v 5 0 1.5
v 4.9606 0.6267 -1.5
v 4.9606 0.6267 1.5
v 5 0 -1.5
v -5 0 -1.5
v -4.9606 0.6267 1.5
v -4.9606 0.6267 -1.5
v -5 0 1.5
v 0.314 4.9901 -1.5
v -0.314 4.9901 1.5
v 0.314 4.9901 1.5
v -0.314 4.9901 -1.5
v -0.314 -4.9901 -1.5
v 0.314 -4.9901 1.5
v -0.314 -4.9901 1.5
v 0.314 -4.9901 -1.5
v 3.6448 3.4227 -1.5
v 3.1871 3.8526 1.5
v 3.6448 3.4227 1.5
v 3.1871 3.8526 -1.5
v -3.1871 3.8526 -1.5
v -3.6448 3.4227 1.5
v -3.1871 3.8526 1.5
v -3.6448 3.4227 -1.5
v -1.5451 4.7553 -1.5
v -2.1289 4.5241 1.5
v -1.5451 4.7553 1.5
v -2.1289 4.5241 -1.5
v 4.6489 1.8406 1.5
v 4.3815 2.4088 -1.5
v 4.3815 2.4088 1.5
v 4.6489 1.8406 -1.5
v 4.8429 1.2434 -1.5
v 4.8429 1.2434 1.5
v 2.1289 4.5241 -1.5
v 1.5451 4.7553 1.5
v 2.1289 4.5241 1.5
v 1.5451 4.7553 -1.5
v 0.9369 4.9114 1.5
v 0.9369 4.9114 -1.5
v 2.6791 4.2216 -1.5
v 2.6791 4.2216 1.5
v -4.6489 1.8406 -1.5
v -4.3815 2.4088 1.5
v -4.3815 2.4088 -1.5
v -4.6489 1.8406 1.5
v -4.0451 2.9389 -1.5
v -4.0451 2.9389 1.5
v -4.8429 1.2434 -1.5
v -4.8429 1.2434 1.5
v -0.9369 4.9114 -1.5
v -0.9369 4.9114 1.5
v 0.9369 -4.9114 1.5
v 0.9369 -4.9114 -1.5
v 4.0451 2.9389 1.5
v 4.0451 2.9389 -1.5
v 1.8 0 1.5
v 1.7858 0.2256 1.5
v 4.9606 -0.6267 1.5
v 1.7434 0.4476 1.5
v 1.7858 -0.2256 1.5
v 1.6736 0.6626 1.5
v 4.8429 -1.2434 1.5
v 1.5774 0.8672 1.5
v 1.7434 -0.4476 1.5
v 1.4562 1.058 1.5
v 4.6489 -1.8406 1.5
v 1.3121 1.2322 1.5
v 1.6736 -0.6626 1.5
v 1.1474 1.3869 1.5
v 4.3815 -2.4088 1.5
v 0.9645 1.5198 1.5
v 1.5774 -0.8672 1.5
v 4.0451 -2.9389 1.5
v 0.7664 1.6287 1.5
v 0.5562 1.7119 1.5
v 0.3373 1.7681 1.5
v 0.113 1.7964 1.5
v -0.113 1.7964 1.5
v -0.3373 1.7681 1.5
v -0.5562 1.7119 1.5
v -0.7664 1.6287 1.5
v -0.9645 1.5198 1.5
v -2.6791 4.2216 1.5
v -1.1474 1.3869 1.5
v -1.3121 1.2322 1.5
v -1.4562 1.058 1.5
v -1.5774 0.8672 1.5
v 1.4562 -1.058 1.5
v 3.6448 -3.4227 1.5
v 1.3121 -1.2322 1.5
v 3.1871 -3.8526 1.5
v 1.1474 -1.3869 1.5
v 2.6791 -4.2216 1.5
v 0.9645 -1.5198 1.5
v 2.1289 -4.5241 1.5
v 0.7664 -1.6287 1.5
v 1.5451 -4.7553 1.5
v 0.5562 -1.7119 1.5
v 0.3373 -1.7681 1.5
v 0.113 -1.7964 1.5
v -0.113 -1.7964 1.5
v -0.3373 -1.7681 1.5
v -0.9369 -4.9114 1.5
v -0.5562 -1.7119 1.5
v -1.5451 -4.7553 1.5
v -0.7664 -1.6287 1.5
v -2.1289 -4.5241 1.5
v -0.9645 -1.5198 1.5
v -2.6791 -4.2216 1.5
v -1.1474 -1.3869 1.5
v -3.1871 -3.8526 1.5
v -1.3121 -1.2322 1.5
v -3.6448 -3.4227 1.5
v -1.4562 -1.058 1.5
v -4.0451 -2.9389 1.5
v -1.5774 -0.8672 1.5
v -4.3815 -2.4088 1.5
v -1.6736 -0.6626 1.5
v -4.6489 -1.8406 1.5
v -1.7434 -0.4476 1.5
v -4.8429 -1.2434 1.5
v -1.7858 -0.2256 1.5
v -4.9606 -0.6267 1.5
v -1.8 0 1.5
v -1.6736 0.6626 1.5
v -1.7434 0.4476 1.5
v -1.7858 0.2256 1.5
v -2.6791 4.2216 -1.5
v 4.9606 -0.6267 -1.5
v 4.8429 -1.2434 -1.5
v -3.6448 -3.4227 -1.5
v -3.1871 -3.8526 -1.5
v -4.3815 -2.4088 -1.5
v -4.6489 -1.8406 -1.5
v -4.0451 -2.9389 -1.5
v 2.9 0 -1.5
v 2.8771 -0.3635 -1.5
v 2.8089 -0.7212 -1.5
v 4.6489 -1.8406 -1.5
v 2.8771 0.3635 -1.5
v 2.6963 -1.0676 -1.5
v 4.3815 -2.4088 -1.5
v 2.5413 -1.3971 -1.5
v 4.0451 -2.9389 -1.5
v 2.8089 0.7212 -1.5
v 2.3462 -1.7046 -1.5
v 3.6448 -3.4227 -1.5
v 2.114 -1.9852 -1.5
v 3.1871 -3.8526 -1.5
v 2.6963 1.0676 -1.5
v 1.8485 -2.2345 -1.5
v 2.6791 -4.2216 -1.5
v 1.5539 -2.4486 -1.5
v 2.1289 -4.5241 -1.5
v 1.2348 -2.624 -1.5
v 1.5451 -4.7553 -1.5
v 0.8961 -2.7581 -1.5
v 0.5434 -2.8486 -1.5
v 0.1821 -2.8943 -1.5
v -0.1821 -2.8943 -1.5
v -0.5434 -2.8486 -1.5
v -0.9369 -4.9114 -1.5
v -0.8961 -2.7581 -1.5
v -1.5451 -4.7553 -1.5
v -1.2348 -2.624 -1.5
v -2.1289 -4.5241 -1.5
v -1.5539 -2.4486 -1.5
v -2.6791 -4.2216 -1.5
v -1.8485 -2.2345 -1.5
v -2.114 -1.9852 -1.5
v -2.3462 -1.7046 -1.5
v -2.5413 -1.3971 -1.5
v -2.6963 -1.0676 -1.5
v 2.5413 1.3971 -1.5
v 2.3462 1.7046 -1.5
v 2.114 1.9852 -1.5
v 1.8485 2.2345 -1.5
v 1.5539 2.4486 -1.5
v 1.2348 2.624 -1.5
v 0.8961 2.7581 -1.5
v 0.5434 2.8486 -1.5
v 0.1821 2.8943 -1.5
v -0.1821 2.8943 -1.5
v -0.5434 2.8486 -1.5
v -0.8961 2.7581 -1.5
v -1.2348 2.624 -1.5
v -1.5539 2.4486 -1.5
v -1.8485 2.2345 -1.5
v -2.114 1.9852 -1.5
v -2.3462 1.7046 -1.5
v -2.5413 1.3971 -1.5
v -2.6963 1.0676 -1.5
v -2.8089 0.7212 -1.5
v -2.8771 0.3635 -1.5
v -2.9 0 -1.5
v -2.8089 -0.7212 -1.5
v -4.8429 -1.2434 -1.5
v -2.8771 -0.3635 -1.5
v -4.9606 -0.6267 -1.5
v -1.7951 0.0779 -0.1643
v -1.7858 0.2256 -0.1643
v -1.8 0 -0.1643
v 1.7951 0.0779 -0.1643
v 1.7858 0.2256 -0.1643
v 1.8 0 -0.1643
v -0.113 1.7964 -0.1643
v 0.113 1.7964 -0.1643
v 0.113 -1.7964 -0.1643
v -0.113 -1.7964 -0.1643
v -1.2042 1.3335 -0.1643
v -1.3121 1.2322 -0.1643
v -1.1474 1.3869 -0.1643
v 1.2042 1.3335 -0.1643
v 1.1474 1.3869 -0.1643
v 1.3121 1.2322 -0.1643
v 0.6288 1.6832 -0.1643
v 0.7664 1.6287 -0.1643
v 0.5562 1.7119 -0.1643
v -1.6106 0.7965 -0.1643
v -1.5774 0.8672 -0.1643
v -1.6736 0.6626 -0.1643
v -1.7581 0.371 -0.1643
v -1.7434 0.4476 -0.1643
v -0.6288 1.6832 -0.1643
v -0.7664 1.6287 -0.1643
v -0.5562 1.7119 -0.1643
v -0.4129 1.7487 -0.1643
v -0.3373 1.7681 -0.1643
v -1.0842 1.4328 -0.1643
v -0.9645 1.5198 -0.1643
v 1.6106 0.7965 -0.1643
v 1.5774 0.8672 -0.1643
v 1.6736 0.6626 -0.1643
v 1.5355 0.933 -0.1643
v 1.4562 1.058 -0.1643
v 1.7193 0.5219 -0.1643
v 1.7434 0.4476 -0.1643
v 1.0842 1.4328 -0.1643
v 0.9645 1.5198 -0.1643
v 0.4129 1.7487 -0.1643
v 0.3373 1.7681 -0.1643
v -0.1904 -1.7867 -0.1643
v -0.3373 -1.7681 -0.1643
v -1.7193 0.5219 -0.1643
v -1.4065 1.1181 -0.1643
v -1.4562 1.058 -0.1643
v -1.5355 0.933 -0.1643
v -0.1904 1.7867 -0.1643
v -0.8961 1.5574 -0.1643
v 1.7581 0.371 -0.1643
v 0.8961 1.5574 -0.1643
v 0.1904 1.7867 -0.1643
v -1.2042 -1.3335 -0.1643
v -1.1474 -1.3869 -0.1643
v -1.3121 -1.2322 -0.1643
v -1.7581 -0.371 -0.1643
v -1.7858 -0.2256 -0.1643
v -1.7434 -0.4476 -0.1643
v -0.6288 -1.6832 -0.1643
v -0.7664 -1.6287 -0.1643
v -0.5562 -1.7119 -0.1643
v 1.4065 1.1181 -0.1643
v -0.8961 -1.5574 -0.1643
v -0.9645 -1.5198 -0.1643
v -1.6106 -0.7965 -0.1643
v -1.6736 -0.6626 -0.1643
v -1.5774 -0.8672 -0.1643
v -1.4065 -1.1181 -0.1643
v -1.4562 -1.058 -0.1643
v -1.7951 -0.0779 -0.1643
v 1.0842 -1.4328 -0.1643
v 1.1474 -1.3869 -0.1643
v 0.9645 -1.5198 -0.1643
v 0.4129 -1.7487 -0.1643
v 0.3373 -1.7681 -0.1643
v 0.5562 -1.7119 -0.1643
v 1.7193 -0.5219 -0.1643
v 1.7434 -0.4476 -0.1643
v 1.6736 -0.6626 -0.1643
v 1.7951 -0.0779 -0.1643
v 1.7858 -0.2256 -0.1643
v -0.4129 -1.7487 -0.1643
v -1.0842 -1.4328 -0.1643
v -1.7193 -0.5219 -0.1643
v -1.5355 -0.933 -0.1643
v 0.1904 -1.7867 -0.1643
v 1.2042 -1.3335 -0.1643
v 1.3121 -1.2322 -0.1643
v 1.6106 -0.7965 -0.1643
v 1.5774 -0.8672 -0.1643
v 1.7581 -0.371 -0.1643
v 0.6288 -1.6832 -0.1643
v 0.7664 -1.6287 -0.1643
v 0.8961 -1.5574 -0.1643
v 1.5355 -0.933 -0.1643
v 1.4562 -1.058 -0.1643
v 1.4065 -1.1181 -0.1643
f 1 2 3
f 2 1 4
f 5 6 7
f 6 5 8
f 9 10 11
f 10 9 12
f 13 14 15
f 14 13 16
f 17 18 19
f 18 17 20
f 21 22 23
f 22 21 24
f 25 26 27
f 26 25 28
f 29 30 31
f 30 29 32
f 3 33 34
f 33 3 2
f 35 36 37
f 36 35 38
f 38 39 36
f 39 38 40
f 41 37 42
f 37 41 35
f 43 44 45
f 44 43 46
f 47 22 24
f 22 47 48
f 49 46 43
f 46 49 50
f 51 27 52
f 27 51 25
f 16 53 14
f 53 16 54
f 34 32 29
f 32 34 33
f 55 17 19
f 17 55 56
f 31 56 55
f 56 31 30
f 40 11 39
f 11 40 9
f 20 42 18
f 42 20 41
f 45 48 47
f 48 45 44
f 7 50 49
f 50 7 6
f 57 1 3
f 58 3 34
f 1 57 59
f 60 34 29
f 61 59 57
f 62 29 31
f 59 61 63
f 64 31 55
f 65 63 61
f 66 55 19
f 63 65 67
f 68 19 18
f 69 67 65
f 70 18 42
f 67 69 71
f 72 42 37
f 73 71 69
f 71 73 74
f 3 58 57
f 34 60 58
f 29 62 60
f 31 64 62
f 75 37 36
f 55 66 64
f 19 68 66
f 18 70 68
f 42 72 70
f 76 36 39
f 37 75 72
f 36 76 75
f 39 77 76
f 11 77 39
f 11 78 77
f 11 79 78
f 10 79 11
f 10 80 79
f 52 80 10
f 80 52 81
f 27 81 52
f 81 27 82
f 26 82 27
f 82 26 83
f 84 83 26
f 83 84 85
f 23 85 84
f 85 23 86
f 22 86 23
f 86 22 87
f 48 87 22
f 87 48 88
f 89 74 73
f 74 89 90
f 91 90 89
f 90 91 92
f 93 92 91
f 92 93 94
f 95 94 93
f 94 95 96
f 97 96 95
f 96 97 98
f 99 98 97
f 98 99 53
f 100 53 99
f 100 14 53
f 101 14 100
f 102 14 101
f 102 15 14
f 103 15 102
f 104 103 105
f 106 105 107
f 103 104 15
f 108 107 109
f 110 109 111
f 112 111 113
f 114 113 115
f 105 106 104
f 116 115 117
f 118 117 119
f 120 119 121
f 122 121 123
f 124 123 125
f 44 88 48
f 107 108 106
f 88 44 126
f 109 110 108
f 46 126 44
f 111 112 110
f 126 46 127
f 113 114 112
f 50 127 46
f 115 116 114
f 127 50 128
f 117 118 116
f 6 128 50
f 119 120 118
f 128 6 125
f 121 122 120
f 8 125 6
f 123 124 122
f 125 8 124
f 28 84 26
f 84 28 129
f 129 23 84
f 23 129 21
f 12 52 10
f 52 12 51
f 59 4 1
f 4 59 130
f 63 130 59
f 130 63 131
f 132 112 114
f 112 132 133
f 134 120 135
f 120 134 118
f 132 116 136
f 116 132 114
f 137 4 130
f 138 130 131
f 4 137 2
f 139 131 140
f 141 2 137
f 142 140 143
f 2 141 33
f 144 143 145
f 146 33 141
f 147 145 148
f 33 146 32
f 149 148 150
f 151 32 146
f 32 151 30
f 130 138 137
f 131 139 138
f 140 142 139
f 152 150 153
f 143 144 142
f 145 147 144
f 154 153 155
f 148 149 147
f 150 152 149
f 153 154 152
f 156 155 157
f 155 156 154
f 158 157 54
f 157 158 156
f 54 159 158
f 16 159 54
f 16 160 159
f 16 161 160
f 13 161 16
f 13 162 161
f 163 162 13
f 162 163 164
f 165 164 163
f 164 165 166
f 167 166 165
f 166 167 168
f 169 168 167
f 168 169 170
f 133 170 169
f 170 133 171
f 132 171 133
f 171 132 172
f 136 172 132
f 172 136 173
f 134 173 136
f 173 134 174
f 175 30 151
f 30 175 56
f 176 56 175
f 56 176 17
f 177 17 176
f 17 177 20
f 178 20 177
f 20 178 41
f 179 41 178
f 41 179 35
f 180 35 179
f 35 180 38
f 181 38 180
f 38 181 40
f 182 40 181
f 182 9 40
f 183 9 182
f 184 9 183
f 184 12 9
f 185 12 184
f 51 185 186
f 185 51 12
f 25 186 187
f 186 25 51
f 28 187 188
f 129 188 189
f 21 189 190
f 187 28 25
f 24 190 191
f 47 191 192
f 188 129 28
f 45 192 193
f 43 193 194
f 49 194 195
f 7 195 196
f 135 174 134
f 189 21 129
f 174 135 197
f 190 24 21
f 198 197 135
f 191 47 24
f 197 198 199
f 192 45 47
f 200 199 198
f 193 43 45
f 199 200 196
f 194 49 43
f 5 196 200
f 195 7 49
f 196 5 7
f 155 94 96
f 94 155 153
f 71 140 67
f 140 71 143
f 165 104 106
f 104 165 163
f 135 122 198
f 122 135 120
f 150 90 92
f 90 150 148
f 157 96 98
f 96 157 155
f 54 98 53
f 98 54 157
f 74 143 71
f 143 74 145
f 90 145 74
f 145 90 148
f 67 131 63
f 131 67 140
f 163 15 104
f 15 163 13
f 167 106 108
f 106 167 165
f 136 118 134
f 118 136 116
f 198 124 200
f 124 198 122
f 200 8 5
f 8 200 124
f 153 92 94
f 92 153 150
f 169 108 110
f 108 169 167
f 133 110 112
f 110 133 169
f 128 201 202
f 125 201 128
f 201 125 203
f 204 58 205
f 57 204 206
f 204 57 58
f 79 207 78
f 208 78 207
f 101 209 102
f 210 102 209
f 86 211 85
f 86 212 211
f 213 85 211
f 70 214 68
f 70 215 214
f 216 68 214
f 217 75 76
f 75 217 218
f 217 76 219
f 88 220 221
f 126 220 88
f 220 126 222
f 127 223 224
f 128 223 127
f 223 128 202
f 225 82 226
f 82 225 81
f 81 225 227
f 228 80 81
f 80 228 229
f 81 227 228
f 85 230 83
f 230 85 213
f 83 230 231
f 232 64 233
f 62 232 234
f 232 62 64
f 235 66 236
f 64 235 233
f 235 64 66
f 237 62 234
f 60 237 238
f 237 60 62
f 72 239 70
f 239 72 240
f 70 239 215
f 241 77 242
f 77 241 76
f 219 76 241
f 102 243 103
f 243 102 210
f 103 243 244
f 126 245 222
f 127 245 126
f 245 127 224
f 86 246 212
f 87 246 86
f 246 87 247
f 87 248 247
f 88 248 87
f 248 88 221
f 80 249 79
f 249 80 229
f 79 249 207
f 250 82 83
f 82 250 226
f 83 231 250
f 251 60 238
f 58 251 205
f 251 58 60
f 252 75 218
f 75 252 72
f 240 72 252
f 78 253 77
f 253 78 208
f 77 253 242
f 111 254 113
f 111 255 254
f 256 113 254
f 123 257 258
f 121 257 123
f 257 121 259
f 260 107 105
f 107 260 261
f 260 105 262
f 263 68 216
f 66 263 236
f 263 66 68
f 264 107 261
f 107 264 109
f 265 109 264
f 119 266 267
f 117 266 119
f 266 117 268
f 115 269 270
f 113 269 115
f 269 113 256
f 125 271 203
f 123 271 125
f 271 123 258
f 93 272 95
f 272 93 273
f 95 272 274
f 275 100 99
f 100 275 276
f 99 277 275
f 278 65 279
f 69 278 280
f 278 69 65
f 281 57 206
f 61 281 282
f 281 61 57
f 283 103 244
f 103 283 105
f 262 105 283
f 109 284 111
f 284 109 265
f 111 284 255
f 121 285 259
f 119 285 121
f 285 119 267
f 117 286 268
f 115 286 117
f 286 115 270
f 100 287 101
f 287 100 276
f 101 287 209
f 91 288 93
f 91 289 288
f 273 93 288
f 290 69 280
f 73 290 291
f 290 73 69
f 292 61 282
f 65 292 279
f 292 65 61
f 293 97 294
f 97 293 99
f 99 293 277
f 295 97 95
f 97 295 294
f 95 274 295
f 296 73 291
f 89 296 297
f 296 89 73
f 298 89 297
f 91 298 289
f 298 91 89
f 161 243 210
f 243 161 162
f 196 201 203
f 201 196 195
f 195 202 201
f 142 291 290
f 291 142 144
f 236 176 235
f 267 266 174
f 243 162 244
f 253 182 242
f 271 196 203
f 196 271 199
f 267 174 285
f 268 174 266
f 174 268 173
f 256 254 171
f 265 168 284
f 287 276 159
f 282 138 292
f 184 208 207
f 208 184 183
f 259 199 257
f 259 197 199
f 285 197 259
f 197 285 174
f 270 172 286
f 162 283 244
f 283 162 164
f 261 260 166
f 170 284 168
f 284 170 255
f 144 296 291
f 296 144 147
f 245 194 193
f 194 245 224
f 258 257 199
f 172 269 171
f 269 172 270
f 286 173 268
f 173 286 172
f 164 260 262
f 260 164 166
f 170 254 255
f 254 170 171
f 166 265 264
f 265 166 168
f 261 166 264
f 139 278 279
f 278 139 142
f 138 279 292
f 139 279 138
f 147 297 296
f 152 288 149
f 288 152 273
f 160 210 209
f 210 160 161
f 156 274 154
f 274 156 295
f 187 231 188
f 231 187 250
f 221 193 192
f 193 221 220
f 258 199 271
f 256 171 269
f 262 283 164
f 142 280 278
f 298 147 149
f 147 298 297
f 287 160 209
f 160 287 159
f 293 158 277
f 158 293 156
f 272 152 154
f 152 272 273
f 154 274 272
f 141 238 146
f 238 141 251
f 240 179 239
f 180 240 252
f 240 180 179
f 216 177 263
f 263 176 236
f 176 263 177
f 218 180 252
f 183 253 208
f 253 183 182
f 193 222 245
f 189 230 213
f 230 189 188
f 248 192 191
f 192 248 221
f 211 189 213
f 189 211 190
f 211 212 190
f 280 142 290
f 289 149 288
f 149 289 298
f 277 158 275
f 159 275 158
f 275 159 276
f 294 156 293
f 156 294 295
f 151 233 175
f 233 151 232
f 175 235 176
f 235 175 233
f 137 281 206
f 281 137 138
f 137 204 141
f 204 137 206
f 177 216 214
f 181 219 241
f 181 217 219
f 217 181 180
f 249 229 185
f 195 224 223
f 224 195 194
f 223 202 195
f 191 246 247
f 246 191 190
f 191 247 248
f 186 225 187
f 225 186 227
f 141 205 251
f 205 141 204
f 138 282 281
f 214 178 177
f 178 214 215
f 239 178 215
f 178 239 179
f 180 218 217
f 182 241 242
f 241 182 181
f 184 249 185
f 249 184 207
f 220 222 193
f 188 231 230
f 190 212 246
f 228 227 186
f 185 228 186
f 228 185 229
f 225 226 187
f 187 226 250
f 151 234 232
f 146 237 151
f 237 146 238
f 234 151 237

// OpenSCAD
$fn = 50;


difference() {
	union() {
		translate(v = [0, 0, -1.5000000000]) {
			cylinder(h = 3, r = 5.0000000000);
		}
		translate(v = [0, 0, -1.5000000000]) {
			cylinder(h = 3, r = 3.0000000000);
		}
	}
	union() {
		translate(v = [0, 0, -1.5000000000]) {
			rotate(a = [0, 180, 0]) {
				difference() {
					union() {
						translate(v = [0, 0, -3.0000000000]) {
							cylinder(h = 3, r = 1.5000000000);
						}
						translate(v = [0, 0, -3.0000000000]) {
							cylinder(h = 3, r = 1.8000000000);
						}
						translate(v = [0, 0, -1.7000000000]) {
							cylinder(h = 1.7000000000, r1 = 1.5000000000, r2 = 2.9000000000);
						}
						translate(v = [0, 0, -3.0000000000]) {
							cylinder(h = 3, r = 1.5000000000);
						}
					}
					union();
				}
			}
		}
		translate(v = [0, 0, -50.0000000000]) {
			cylinder(h = 100, r = 1.5000000000);
		}
	}
}
